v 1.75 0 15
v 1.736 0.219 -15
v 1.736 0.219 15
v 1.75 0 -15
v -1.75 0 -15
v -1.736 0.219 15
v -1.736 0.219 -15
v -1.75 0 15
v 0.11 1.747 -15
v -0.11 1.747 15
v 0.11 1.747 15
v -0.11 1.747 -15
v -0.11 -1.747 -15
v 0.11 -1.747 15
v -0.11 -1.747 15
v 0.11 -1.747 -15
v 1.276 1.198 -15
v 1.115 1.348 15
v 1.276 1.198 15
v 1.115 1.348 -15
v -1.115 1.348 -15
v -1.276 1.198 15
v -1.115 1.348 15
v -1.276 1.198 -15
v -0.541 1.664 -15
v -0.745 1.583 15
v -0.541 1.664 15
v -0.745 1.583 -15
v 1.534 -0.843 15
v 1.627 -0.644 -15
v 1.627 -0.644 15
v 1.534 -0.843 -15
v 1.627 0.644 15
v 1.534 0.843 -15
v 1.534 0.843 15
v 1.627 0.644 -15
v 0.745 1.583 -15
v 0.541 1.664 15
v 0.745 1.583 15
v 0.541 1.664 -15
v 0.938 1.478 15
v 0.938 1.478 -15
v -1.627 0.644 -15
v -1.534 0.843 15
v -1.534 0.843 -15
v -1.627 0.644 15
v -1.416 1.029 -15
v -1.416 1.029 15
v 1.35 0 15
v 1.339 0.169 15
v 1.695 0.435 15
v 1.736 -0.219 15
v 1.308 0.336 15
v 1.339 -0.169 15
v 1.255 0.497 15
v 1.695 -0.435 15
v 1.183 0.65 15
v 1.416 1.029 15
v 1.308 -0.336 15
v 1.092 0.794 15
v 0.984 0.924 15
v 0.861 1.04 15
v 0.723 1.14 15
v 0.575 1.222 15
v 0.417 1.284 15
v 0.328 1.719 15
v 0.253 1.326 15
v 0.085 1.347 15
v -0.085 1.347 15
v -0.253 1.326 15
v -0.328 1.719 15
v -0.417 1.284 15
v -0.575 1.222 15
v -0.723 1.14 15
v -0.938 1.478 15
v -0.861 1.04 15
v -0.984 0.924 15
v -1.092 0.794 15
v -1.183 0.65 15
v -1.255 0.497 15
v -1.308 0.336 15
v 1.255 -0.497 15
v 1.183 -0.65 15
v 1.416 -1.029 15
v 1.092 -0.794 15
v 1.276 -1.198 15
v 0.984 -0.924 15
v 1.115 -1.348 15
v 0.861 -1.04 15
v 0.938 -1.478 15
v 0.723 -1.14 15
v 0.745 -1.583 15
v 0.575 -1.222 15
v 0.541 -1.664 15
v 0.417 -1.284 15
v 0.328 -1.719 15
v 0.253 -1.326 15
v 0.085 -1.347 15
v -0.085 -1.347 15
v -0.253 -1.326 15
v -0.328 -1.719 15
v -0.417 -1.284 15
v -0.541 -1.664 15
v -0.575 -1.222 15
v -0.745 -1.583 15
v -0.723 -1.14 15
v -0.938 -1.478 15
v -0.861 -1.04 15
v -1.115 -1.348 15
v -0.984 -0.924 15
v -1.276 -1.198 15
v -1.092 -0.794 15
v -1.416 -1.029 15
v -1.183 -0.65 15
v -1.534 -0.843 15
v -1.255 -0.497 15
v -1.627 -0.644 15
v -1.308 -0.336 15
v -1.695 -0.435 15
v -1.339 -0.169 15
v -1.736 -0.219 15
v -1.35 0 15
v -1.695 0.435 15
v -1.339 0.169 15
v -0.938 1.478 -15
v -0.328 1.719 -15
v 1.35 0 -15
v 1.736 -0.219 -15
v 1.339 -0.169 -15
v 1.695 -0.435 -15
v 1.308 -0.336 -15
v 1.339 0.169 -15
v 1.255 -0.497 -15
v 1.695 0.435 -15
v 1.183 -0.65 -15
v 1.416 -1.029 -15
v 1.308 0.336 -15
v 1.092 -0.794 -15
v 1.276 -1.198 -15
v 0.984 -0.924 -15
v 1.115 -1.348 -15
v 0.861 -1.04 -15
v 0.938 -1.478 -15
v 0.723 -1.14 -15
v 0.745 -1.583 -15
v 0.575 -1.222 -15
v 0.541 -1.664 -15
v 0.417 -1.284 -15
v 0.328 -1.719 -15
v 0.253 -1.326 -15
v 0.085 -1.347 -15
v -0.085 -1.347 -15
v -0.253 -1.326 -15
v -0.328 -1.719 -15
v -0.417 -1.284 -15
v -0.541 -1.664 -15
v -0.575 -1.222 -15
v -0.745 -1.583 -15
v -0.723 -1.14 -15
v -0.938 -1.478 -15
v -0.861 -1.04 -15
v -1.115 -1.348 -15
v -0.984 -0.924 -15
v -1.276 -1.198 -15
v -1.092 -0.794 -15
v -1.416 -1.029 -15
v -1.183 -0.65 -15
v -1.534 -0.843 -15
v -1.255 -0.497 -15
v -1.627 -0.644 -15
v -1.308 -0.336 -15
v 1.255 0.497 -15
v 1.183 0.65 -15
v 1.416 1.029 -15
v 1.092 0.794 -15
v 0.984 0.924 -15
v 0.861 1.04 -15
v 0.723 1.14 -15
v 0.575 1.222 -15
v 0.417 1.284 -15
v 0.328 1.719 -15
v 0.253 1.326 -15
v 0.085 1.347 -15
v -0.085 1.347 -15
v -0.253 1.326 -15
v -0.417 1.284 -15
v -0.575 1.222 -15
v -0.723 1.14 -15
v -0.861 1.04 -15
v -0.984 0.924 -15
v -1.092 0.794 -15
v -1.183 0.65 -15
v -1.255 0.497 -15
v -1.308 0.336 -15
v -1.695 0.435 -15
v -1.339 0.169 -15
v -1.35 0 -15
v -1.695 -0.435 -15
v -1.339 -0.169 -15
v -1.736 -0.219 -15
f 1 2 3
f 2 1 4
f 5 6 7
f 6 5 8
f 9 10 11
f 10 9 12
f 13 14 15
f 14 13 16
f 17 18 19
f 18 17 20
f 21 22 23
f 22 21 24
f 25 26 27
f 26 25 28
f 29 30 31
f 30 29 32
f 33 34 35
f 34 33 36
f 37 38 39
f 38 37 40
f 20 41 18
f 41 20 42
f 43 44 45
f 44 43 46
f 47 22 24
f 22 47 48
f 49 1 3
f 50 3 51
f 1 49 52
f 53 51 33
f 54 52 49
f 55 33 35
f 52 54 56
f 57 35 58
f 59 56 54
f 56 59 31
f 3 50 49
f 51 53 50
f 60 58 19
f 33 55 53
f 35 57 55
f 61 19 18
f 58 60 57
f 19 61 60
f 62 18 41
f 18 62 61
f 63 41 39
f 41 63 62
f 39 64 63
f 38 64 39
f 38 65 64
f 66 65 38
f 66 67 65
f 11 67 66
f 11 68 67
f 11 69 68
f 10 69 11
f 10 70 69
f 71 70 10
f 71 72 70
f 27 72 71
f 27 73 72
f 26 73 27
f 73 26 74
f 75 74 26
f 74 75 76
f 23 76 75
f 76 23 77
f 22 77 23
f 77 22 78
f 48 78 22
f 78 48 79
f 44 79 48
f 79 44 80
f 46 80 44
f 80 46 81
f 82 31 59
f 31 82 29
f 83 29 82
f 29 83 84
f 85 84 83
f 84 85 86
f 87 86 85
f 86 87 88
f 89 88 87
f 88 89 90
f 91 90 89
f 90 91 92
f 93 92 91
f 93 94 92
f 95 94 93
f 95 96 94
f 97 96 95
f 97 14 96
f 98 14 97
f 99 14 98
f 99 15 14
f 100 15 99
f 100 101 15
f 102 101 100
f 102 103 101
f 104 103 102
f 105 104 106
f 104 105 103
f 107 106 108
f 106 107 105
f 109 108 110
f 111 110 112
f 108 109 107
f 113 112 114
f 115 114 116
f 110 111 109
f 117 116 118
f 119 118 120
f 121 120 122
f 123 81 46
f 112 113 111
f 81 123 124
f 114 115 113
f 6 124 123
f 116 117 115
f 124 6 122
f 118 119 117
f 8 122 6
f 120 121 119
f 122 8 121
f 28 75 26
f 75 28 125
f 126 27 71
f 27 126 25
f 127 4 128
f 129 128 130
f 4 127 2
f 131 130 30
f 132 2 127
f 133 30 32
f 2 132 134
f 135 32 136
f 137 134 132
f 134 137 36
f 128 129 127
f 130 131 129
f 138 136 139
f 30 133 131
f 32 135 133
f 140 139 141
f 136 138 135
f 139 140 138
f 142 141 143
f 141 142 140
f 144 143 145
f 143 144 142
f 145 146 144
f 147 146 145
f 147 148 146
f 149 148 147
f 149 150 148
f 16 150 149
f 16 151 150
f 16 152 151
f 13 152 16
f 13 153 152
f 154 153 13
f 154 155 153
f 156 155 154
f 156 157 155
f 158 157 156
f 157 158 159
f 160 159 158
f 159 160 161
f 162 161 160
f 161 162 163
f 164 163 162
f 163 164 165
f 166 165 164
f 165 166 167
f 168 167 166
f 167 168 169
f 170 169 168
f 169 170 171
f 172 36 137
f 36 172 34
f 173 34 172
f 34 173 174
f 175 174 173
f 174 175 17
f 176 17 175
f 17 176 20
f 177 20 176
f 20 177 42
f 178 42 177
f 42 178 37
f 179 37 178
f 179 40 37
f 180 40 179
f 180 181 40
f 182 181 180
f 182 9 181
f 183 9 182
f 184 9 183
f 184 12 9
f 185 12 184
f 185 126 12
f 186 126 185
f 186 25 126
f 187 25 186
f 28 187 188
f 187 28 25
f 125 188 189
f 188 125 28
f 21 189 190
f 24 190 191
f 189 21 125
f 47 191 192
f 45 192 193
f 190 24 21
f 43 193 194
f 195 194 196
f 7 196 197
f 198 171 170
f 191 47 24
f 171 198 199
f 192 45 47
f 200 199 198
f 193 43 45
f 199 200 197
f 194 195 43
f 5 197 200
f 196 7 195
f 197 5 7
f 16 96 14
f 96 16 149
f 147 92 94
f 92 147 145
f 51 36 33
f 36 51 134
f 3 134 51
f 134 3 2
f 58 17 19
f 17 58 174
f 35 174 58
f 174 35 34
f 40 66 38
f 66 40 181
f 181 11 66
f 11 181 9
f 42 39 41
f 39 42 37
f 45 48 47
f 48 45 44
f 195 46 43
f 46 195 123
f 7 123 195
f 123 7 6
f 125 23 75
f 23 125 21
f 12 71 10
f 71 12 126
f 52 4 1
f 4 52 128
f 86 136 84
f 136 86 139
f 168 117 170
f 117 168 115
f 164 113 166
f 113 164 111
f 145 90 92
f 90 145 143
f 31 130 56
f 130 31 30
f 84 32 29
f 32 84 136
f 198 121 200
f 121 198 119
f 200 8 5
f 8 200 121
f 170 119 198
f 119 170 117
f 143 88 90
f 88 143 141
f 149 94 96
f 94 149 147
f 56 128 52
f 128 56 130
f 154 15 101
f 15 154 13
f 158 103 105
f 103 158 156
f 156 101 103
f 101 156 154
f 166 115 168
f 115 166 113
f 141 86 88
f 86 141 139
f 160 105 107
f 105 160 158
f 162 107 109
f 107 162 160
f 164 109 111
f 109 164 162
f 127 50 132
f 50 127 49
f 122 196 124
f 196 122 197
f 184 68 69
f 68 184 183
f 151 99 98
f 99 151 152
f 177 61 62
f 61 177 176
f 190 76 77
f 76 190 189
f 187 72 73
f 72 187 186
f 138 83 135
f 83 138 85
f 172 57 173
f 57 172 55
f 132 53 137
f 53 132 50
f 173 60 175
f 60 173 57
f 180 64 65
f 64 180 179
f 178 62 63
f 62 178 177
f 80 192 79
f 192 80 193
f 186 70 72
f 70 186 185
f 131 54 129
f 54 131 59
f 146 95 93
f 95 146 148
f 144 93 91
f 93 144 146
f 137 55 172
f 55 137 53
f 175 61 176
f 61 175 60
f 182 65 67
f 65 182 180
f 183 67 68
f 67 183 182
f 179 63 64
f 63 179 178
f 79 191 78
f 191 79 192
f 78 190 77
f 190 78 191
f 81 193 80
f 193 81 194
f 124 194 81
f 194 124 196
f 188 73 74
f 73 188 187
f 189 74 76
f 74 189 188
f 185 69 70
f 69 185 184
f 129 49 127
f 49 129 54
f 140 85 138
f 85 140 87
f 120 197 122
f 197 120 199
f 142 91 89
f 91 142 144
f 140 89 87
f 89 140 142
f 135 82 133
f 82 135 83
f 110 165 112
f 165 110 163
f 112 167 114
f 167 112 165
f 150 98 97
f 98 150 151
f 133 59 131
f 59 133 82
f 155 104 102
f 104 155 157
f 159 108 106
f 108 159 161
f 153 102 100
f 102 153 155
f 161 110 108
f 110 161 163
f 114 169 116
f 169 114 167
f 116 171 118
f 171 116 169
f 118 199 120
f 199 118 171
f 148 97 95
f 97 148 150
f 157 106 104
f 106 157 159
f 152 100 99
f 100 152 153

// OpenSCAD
$fn = 50;


difference() {
	union() {
		translate(v = [0, 0, -15.0000000000]) {
			cylinder(h = 30, r = 1.7500000000);
		}
	}
	union() {
		translate(v = [0, 0, -100.0000000000]) {
			cylinder(h = 200, r = 1.3500000000);
		}
	}
}
